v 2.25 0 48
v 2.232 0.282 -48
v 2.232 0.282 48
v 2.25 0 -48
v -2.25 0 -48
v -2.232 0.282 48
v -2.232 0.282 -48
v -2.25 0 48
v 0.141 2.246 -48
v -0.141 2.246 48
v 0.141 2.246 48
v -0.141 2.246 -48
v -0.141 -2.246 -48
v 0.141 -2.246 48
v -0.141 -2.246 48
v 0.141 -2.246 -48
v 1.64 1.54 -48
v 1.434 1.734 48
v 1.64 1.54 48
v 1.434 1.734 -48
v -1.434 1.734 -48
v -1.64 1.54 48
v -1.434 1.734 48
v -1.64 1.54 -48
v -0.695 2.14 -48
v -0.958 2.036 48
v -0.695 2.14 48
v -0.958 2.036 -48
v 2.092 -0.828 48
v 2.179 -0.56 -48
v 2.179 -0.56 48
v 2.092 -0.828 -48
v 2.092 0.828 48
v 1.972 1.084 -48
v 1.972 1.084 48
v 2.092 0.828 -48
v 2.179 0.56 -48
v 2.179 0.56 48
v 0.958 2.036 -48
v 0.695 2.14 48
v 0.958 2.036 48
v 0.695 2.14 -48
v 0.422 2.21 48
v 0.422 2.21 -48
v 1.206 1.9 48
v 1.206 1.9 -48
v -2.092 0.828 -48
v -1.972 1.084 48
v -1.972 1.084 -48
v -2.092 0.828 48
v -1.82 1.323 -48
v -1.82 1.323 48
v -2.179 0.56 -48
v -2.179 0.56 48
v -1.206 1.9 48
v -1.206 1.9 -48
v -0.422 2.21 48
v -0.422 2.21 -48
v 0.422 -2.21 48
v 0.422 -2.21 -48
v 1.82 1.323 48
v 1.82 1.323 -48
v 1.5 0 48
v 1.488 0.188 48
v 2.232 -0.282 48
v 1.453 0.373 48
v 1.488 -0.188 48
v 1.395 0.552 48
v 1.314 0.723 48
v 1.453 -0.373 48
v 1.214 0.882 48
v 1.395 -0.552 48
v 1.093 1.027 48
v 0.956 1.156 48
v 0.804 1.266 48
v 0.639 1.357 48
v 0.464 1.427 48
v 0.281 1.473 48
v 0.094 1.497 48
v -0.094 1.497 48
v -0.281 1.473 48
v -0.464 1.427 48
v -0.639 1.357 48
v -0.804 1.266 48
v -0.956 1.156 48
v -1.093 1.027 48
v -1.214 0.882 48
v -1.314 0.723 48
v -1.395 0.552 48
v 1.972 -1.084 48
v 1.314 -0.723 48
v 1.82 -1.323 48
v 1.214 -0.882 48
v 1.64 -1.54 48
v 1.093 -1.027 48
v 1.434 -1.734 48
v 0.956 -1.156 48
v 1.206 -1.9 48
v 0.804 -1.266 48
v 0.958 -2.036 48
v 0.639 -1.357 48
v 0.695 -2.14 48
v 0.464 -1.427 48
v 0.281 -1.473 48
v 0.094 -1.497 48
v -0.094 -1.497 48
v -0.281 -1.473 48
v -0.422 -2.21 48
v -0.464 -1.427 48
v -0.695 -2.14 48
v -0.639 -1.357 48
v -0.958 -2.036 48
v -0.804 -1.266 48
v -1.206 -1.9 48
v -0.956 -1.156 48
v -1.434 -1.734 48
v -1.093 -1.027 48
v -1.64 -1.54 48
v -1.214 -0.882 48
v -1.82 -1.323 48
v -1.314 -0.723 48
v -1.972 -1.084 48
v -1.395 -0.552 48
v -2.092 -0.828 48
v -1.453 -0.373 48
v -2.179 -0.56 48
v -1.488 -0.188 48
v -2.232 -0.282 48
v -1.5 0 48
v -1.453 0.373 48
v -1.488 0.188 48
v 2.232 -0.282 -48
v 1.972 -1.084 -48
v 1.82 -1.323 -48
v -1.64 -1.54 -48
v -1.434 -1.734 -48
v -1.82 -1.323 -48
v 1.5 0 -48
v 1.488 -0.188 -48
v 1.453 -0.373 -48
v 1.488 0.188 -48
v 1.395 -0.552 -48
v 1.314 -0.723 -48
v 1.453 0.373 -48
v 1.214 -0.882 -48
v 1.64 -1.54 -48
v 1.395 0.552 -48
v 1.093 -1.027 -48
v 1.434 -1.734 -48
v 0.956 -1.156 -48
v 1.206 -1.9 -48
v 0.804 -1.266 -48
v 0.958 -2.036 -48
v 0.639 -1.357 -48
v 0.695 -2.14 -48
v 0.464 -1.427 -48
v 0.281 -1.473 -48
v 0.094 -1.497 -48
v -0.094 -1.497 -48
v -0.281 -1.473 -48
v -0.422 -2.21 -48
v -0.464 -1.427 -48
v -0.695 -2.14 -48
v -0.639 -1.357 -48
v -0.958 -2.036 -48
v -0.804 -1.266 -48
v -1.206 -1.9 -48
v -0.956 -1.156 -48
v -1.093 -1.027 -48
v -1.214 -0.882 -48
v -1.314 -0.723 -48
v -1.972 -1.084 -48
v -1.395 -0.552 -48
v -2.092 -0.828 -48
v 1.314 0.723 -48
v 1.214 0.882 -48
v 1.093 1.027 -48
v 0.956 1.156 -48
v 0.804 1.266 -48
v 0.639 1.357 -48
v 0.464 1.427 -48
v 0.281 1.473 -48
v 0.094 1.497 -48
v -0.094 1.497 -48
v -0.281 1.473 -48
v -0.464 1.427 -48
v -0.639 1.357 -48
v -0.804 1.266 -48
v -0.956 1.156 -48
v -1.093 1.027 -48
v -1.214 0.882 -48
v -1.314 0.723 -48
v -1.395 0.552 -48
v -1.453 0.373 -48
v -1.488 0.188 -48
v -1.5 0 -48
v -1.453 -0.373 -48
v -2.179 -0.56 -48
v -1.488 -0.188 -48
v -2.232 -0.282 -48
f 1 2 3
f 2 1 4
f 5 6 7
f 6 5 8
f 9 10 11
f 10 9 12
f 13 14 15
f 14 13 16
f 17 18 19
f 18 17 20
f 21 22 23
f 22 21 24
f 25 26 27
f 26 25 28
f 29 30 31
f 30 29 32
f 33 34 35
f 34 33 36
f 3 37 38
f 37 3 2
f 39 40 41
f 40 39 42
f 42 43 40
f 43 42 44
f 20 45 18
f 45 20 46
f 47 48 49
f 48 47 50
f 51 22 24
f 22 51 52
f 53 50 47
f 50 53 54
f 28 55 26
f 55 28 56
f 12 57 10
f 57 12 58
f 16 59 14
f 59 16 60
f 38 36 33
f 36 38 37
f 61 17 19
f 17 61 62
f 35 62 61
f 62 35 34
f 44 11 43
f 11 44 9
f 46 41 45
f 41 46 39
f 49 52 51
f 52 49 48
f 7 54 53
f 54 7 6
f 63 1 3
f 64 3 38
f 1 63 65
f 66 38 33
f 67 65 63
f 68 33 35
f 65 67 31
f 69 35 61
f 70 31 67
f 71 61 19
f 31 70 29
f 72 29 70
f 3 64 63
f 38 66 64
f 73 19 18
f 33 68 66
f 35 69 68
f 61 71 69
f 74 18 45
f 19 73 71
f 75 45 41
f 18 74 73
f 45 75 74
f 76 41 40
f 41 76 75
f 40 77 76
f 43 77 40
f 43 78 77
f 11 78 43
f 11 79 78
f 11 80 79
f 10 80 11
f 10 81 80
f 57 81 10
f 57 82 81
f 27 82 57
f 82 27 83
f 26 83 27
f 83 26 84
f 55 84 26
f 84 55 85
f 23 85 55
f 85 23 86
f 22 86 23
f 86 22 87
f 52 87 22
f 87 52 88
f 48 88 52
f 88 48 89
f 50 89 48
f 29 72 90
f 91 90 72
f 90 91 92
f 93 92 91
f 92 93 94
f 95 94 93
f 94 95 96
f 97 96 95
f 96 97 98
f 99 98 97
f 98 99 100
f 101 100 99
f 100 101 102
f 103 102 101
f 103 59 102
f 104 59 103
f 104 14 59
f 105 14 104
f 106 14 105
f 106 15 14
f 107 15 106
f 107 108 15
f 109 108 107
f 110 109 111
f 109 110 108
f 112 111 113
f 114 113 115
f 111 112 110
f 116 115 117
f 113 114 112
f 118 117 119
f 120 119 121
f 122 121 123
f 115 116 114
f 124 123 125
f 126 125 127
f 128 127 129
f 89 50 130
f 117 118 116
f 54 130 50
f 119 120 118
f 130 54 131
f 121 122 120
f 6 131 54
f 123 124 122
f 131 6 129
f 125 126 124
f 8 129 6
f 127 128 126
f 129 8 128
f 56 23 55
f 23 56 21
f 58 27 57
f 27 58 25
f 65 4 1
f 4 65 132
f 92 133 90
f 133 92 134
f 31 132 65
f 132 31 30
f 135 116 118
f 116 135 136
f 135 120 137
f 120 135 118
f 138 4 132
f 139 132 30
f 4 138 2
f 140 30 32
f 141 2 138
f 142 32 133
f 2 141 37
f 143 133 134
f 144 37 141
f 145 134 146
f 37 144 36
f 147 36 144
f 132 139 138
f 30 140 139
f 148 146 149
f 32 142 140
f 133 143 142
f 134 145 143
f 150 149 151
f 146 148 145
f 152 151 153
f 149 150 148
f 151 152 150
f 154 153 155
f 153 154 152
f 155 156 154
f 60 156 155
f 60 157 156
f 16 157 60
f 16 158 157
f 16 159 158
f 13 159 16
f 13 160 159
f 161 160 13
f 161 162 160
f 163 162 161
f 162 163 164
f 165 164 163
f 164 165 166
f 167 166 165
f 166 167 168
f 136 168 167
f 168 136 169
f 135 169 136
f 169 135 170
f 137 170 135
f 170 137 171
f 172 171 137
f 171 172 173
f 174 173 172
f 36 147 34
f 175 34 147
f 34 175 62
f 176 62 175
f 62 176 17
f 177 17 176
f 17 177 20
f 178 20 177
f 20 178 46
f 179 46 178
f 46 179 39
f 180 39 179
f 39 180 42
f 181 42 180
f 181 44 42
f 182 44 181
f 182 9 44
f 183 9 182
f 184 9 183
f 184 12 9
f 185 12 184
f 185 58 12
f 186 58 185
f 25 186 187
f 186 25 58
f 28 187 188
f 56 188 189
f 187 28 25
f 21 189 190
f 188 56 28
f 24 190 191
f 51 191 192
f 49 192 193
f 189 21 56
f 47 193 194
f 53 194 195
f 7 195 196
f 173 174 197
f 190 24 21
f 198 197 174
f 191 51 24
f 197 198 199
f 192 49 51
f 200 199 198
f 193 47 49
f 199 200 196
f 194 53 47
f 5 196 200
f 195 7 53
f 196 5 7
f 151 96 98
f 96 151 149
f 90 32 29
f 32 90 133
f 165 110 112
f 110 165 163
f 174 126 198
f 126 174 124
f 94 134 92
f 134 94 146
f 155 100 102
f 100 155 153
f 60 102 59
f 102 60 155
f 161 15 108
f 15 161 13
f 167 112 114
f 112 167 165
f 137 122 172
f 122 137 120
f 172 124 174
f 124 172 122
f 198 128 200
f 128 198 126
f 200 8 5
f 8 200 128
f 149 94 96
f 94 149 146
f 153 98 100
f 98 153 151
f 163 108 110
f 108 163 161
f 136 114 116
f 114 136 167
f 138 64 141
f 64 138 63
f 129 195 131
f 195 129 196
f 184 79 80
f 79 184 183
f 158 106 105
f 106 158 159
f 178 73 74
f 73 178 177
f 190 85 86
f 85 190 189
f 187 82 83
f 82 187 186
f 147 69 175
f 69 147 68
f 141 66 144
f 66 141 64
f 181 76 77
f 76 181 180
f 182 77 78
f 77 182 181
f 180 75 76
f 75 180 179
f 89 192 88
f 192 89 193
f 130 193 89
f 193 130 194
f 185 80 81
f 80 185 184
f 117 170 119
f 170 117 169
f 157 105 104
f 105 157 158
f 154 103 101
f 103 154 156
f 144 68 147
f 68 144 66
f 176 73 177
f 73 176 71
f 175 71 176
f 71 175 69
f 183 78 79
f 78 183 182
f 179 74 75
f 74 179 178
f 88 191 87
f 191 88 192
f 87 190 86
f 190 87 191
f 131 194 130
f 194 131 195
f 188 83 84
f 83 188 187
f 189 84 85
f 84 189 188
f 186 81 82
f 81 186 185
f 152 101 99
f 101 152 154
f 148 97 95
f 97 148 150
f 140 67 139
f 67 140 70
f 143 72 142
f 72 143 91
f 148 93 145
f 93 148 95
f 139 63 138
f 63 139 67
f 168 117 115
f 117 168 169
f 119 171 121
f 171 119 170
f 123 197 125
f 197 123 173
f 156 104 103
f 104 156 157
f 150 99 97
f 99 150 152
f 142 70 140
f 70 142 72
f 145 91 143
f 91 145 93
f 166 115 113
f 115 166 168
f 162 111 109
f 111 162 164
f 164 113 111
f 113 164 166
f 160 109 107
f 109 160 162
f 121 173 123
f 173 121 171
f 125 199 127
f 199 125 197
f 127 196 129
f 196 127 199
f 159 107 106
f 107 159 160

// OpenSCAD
$fn = 50;


difference() {
	union() {
		translate(v = [0, 0, -48.0000000000]) {
			cylinder(h = 96, r = 2.2500000000);
		}
	}
	union() {
		translate(v = [0, 0, -100.0000000000]) {
			cylinder(h = 200, r = 1.5000000000);
		}
	}
}
